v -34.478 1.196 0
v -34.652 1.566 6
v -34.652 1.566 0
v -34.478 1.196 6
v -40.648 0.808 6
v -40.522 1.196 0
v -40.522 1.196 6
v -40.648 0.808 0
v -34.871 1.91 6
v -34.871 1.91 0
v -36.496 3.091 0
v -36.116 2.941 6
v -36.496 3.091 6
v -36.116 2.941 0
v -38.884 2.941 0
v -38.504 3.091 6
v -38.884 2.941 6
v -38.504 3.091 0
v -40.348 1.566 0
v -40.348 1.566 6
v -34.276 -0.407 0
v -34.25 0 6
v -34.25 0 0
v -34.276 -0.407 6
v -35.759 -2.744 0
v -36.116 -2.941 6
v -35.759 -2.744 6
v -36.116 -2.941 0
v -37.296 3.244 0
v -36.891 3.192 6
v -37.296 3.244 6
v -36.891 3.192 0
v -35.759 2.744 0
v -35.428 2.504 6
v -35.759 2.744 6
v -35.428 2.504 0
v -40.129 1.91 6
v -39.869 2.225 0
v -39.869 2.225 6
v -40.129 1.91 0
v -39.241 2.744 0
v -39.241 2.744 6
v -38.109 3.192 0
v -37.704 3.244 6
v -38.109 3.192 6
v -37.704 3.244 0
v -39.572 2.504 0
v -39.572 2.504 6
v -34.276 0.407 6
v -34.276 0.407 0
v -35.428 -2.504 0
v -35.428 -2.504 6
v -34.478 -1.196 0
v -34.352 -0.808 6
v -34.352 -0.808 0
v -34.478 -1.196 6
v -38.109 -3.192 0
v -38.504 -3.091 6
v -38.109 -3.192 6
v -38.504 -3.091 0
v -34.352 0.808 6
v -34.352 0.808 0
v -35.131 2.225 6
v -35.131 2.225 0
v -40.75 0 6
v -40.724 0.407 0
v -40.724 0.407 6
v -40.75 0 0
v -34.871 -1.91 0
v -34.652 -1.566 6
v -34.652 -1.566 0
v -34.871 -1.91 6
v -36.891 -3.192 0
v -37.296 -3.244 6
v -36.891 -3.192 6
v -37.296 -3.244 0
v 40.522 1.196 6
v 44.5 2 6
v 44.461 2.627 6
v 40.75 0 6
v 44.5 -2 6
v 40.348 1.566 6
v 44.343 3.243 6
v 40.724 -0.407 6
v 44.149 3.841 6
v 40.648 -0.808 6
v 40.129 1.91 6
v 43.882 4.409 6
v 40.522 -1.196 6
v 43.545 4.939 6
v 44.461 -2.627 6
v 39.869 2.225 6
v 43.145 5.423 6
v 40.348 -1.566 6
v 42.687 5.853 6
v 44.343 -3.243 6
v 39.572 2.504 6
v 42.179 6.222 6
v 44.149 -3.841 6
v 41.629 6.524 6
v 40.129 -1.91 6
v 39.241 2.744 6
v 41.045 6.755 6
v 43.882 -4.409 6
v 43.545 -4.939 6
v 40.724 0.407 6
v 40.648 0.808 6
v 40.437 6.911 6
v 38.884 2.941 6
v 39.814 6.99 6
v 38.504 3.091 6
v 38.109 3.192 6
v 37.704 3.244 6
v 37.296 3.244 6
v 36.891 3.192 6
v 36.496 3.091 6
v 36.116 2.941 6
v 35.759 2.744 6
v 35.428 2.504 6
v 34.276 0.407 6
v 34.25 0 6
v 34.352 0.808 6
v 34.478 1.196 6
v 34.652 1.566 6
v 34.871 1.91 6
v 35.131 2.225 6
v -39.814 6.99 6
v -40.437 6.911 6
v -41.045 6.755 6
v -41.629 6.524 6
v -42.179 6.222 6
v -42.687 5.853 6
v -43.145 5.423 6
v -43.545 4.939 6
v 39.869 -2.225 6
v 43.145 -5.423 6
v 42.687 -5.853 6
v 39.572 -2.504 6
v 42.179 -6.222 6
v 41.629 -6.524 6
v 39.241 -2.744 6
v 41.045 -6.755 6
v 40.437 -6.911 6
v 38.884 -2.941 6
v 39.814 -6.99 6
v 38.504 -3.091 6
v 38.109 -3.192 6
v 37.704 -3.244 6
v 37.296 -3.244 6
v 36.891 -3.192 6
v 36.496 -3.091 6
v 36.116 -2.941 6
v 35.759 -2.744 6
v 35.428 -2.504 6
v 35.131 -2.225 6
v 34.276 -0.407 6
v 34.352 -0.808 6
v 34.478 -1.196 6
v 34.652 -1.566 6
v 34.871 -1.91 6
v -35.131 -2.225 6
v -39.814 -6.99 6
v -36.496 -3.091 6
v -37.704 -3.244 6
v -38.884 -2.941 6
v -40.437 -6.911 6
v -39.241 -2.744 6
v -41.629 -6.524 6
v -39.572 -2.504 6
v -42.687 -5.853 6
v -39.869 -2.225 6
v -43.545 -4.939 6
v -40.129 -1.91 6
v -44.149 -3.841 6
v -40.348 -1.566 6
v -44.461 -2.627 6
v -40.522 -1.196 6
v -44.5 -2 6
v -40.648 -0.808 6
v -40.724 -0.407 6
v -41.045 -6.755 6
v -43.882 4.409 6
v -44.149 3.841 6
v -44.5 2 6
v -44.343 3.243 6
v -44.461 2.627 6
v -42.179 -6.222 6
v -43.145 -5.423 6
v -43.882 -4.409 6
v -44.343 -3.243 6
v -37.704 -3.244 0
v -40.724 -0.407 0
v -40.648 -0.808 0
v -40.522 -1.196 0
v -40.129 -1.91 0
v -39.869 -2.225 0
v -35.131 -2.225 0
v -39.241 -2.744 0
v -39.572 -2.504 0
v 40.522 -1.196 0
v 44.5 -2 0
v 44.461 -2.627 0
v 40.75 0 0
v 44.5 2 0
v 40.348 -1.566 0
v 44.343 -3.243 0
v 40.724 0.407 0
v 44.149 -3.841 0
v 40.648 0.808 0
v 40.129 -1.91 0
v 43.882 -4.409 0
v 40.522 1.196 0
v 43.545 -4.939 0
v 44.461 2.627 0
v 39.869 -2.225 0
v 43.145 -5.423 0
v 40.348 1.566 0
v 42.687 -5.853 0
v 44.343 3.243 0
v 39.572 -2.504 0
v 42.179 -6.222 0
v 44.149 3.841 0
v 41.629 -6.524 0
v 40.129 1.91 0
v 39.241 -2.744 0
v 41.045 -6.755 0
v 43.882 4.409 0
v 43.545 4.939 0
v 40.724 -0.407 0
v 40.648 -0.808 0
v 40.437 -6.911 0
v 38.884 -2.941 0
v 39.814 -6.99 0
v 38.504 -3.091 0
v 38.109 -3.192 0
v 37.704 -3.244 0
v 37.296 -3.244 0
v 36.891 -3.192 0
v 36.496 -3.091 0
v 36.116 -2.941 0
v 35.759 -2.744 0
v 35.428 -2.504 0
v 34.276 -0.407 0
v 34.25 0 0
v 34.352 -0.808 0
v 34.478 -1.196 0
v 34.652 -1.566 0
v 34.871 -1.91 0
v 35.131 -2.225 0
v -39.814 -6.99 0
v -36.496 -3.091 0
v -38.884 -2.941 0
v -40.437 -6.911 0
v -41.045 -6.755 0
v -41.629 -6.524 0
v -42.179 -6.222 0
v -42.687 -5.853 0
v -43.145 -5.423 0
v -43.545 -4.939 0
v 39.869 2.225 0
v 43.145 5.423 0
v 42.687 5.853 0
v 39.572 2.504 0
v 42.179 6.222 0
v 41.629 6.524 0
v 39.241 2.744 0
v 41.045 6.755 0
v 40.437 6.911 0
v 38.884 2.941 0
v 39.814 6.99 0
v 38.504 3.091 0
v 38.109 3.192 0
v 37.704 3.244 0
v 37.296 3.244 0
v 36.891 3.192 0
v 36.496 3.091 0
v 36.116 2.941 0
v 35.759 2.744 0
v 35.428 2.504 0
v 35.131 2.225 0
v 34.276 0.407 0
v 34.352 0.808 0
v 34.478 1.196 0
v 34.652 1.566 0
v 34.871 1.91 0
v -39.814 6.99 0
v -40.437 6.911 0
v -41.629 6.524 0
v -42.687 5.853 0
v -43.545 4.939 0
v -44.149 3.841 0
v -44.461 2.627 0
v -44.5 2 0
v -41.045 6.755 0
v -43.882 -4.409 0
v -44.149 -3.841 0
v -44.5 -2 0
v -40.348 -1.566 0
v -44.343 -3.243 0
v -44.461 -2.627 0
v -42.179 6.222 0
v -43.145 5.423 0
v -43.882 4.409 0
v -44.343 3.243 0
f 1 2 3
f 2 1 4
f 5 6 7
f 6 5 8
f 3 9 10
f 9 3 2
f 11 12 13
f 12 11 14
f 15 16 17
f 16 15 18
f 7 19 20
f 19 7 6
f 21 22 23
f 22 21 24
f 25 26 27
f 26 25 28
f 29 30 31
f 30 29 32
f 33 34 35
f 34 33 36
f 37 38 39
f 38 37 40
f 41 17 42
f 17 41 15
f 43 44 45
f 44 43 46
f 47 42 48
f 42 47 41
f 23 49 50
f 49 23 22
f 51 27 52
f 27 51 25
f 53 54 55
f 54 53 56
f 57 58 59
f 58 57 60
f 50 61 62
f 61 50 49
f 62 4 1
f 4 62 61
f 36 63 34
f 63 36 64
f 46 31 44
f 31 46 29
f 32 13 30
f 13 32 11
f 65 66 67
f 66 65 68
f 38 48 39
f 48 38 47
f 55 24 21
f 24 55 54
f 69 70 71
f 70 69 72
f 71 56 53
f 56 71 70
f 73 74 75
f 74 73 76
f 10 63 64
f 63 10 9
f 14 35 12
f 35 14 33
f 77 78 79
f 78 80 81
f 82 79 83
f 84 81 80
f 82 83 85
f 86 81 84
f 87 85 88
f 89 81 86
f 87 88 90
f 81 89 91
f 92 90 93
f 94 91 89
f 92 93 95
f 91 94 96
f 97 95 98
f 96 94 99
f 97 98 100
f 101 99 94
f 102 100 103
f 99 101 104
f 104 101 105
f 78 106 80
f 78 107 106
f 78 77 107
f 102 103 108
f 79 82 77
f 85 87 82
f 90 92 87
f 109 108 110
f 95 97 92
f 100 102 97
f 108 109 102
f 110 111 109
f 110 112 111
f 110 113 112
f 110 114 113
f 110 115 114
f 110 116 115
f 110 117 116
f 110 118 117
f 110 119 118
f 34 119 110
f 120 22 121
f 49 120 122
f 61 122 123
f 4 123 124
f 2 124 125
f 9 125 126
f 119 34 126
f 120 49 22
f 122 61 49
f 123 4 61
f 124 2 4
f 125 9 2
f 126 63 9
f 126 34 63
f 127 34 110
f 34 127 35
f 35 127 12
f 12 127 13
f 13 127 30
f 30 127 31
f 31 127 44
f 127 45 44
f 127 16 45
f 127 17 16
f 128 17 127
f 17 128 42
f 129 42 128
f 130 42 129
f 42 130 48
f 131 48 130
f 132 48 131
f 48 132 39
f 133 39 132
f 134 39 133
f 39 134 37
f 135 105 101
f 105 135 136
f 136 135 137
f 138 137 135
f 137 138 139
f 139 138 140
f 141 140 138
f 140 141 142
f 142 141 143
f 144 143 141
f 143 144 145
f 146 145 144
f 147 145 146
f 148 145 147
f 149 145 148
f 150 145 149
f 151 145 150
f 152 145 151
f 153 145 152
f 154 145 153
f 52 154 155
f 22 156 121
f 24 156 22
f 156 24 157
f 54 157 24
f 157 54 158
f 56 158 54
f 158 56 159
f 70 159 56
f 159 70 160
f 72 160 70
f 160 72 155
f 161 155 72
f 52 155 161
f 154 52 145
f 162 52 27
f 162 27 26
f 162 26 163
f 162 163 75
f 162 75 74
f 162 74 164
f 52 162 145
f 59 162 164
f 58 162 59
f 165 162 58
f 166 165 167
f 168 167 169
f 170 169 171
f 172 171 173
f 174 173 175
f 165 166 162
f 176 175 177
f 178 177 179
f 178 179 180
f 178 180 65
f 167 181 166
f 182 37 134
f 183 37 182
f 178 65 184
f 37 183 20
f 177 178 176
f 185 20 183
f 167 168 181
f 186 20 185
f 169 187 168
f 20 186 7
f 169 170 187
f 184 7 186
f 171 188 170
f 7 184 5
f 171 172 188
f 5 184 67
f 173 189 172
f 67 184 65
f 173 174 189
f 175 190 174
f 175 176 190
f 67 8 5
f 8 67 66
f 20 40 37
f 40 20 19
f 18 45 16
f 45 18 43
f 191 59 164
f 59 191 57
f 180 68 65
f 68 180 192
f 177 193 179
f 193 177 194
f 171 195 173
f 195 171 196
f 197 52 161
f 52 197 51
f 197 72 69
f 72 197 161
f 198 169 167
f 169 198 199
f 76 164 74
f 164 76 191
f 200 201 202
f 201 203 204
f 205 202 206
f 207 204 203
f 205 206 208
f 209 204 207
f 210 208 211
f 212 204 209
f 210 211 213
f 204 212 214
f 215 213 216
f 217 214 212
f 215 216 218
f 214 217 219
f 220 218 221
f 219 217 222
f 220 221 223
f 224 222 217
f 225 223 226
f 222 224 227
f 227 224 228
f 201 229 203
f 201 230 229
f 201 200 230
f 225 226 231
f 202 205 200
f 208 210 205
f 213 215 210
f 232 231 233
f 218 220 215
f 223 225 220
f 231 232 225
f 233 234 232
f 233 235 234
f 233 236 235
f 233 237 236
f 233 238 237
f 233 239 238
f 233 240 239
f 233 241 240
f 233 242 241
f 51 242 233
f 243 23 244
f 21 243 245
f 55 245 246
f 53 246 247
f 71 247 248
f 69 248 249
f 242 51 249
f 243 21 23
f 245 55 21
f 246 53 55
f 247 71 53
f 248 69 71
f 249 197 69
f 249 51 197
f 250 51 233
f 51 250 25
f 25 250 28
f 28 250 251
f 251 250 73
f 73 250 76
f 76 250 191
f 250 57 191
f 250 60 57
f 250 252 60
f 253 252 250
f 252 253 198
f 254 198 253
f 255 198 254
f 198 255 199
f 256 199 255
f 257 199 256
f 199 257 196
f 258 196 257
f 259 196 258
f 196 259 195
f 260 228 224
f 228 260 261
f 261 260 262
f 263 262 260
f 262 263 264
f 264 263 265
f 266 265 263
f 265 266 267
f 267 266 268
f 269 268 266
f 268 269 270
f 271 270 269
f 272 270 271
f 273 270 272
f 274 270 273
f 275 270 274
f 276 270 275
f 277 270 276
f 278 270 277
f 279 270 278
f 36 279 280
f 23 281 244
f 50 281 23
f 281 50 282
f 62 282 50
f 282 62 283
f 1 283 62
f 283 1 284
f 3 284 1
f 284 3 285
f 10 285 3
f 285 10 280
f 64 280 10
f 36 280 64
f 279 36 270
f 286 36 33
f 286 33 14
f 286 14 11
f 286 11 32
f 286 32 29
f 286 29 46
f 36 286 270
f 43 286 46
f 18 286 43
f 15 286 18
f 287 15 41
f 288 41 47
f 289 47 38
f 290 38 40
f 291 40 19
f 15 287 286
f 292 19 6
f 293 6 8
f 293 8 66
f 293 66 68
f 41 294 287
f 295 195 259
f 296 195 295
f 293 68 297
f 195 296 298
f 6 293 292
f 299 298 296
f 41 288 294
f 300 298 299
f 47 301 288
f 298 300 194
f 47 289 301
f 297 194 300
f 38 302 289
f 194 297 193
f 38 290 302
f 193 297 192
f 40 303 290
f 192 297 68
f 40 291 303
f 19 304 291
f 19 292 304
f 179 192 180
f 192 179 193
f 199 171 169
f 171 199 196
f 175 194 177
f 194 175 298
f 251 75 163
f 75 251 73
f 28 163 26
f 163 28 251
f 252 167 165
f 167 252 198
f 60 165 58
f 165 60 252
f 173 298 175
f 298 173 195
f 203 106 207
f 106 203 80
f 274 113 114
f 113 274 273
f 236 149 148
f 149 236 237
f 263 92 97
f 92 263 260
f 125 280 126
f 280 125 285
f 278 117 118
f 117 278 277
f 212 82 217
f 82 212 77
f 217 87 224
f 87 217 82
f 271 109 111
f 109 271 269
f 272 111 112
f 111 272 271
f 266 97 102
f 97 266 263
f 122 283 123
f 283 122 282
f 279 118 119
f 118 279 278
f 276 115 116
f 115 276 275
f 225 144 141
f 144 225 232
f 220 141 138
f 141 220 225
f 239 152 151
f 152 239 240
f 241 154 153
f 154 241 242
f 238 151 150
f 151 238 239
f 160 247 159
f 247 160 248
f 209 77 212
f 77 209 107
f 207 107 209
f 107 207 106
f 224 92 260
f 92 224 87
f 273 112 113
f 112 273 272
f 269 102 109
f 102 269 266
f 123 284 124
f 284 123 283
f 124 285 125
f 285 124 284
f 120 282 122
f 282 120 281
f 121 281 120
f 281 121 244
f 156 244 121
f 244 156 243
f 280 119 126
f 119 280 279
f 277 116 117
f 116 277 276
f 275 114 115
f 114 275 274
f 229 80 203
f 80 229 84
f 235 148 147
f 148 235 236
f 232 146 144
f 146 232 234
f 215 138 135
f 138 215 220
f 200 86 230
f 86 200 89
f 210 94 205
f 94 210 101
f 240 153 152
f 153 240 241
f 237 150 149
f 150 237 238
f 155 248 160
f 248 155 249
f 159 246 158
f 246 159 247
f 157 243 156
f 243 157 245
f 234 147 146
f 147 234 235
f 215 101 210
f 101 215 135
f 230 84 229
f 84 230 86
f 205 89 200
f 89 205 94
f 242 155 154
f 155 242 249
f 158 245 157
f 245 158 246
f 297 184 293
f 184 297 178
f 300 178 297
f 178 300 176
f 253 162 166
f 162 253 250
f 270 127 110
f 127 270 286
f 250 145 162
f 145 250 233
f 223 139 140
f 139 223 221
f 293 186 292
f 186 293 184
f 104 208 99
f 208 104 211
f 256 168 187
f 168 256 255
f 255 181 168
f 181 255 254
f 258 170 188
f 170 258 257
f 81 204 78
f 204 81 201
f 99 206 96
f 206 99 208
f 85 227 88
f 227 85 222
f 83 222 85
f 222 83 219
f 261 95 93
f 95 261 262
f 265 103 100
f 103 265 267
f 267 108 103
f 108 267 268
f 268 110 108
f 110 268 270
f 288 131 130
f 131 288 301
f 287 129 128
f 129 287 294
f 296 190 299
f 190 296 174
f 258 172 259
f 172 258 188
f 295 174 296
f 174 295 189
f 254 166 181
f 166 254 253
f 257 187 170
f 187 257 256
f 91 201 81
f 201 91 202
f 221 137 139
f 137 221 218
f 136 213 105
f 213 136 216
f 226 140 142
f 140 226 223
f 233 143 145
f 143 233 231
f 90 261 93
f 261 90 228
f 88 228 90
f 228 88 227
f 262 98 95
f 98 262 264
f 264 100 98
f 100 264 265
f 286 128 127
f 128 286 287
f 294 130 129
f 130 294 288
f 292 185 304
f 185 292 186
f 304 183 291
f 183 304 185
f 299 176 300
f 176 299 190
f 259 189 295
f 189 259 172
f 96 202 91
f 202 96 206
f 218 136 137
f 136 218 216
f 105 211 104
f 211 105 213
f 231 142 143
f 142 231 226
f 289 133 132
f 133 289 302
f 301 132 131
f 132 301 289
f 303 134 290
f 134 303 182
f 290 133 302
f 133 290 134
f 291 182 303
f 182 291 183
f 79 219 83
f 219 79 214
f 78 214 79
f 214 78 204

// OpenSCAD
$fn = 50;


difference() {
	union() {
		hull() {
			translate(v = [-39.5000000000, 2.0000000000, 0]) {
				cylinder(h = 6, r = 5);
			}
			translate(v = [39.5000000000, 2.0000000000, 0]) {
				cylinder(h = 6, r = 5);
			}
			translate(v = [-39.5000000000, -2.0000000000, 0]) {
				cylinder(h = 6, r = 5);
			}
			translate(v = [39.5000000000, -2.0000000000, 0]) {
				cylinder(h = 6, r = 5);
			}
		}
	}
	union() {
		translate(v = [-37.5000000000, 0.0000000000, -100.0000000000]) {
			cylinder(h = 200, r = 3.2500000000);
		}
		translate(v = [-37.5000000000, 0.0000000000, -100.0000000000]) {
			cylinder(h = 200, r = 3.2500000000);
		}
		translate(v = [37.5000000000, 0.0000000000, -100.0000000000]) {
			cylinder(h = 200, r = 3.2500000000);
		}
		translate(v = [37.5000000000, 0.0000000000, -100.0000000000]) {
			cylinder(h = 200, r = 3.2500000000);
		}
	}
}
